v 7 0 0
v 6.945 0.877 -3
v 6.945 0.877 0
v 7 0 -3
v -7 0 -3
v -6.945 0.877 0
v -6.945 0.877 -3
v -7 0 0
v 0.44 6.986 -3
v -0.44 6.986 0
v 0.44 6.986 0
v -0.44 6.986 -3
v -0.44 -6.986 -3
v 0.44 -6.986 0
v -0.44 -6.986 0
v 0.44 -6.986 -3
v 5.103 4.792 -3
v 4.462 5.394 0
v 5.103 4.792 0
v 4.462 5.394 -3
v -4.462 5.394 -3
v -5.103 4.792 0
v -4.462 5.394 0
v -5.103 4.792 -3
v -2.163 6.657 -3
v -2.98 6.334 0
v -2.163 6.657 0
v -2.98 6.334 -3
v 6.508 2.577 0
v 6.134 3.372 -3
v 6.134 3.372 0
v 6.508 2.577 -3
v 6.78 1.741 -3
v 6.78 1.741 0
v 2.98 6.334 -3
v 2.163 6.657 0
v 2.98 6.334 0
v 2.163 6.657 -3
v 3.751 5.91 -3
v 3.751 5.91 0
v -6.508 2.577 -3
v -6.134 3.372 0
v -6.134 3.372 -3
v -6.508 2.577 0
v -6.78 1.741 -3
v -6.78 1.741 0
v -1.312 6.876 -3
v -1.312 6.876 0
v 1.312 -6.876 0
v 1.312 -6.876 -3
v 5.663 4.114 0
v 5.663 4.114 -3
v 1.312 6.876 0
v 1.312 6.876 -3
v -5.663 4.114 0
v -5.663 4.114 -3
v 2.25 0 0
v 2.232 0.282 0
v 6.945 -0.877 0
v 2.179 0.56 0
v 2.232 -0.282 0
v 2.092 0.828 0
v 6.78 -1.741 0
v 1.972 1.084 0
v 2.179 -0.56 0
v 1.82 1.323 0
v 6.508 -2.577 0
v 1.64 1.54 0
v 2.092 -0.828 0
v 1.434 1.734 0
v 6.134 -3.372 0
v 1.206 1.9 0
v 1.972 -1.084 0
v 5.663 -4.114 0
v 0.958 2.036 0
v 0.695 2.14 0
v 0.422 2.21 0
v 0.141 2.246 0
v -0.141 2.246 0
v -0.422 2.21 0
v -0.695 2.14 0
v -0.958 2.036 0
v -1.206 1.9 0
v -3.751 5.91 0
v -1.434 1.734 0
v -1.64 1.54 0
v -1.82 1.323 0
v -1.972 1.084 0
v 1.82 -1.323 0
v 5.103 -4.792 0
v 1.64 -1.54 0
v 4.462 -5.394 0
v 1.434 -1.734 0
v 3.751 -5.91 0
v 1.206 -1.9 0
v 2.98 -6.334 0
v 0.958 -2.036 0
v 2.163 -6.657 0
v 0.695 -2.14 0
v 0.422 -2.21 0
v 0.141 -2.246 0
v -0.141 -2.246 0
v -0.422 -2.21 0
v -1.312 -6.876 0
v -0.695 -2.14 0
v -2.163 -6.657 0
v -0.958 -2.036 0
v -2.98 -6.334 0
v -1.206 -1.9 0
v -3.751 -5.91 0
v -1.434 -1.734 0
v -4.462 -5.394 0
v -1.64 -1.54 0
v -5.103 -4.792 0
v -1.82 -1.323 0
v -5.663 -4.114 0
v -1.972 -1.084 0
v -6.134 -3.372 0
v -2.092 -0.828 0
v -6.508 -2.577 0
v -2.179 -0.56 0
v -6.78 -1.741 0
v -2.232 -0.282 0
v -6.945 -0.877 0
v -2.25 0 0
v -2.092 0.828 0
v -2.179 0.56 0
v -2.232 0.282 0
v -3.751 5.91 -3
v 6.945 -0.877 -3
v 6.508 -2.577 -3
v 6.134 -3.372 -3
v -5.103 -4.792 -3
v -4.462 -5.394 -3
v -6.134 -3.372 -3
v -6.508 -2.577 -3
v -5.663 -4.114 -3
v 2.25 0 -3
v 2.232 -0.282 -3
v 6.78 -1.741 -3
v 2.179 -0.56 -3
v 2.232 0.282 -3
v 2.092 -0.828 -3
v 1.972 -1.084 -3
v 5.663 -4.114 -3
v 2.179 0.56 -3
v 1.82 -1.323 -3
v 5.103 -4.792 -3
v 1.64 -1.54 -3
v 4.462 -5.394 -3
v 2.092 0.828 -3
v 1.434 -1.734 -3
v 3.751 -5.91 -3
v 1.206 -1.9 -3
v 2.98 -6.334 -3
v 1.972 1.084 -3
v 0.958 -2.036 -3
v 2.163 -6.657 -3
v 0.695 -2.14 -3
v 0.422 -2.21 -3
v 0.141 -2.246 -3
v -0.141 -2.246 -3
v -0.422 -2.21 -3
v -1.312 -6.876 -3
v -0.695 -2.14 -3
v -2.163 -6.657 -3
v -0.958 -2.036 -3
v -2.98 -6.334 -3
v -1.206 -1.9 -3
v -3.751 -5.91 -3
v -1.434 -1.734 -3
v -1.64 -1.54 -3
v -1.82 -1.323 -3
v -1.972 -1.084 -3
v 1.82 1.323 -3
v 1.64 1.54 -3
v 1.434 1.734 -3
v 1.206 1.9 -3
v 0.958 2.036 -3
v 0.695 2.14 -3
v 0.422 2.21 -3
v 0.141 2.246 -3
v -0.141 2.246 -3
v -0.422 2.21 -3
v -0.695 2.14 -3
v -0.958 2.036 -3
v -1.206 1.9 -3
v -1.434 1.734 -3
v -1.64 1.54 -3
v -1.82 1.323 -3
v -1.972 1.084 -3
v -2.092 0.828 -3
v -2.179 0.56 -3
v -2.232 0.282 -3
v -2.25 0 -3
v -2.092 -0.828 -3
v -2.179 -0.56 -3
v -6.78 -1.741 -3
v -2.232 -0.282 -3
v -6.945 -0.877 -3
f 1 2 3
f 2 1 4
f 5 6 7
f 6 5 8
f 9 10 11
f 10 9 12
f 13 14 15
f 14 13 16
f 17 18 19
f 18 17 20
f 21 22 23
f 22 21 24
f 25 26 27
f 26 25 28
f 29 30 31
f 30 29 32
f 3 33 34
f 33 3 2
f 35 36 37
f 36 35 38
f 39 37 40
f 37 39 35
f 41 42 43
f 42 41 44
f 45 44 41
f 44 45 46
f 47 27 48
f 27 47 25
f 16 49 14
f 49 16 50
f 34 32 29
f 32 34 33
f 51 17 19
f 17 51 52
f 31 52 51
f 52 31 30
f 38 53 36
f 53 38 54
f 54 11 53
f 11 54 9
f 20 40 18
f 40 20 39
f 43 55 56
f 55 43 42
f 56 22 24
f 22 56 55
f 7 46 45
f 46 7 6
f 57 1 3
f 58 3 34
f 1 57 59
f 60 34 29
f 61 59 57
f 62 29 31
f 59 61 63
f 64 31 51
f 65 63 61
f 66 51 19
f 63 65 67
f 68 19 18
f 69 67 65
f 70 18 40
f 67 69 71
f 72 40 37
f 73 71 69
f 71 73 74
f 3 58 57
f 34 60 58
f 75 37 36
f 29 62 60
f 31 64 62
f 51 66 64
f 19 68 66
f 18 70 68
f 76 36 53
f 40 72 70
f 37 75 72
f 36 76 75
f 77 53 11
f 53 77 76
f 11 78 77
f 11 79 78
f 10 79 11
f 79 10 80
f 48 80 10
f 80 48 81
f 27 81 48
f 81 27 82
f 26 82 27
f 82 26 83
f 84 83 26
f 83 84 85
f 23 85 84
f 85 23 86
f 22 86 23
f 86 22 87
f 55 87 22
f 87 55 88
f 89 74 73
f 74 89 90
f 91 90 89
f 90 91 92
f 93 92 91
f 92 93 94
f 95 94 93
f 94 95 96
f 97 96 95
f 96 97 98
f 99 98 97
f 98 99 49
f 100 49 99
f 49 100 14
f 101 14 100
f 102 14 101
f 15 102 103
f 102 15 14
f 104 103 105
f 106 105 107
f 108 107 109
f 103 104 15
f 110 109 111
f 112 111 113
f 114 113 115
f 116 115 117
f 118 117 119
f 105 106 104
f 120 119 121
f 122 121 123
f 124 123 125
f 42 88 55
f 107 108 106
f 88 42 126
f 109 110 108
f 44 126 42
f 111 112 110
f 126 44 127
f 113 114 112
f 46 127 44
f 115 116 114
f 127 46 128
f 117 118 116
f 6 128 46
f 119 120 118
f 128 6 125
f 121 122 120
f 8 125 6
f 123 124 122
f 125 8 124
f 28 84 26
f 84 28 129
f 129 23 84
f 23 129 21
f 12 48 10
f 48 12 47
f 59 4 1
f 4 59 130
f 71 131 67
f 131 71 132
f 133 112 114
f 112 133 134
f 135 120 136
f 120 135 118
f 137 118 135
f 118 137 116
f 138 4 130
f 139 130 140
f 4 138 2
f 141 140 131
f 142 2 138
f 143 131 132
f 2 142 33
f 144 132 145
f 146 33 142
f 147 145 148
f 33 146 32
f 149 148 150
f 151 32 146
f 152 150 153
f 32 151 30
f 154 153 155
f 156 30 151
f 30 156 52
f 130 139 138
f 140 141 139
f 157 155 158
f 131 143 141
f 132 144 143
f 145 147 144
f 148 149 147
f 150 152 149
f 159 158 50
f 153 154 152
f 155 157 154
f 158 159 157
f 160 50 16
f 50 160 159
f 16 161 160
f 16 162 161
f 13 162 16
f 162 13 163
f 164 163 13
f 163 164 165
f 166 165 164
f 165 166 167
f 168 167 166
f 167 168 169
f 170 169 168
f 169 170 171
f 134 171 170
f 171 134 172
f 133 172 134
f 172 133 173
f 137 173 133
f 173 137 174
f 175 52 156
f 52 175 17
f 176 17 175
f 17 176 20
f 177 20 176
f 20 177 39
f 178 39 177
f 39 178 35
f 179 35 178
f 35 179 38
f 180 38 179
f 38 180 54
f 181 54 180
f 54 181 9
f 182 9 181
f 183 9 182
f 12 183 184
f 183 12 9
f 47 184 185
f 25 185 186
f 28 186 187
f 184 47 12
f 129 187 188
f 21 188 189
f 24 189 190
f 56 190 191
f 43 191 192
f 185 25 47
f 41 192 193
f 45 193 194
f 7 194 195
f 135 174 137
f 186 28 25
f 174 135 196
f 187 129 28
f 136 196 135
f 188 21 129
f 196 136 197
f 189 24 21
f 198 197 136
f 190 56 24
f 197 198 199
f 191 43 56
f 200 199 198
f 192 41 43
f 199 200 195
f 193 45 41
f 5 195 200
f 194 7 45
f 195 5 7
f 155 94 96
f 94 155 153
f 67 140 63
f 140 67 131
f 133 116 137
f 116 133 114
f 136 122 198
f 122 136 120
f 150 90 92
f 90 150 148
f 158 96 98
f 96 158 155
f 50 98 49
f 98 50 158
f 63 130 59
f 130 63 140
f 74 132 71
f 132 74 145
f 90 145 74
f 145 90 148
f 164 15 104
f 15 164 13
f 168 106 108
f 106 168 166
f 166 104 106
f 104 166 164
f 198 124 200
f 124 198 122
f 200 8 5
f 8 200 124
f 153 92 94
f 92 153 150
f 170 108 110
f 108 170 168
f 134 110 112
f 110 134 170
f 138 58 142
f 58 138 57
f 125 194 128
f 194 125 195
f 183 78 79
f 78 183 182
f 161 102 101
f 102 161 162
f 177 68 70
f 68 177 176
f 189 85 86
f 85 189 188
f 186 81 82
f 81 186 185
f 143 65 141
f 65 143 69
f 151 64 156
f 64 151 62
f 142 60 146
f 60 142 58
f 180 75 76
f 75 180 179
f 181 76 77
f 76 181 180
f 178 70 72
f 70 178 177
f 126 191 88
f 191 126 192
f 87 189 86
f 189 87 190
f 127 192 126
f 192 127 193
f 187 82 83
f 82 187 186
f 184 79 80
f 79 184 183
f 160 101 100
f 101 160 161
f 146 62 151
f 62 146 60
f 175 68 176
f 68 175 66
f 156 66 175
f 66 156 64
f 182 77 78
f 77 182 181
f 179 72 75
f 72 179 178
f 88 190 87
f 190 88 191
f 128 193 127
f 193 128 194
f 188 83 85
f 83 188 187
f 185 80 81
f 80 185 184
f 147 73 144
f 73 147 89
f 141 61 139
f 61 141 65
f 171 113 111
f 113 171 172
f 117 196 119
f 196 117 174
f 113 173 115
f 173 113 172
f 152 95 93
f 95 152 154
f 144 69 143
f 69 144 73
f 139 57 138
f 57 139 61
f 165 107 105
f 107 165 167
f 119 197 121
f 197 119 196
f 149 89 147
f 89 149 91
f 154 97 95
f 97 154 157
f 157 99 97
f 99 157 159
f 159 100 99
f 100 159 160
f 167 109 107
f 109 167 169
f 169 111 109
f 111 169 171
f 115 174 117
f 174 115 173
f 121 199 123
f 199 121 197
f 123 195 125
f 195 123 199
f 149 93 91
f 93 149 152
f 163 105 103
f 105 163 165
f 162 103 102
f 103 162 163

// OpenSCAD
$fn = 50;


difference() {
	union() {
		translate(v = [0, 0, -3.0000000000]) {
			cylinder(h = 3, r = 7.0000000000);
		}
		cylinder(h = 0, r = 17.0000000000);
	}
	union() {
		#translate(v = [0, 0, -3]) {
			cylinder(h = 3, r = 2.2500000000);
		}
	}
}
